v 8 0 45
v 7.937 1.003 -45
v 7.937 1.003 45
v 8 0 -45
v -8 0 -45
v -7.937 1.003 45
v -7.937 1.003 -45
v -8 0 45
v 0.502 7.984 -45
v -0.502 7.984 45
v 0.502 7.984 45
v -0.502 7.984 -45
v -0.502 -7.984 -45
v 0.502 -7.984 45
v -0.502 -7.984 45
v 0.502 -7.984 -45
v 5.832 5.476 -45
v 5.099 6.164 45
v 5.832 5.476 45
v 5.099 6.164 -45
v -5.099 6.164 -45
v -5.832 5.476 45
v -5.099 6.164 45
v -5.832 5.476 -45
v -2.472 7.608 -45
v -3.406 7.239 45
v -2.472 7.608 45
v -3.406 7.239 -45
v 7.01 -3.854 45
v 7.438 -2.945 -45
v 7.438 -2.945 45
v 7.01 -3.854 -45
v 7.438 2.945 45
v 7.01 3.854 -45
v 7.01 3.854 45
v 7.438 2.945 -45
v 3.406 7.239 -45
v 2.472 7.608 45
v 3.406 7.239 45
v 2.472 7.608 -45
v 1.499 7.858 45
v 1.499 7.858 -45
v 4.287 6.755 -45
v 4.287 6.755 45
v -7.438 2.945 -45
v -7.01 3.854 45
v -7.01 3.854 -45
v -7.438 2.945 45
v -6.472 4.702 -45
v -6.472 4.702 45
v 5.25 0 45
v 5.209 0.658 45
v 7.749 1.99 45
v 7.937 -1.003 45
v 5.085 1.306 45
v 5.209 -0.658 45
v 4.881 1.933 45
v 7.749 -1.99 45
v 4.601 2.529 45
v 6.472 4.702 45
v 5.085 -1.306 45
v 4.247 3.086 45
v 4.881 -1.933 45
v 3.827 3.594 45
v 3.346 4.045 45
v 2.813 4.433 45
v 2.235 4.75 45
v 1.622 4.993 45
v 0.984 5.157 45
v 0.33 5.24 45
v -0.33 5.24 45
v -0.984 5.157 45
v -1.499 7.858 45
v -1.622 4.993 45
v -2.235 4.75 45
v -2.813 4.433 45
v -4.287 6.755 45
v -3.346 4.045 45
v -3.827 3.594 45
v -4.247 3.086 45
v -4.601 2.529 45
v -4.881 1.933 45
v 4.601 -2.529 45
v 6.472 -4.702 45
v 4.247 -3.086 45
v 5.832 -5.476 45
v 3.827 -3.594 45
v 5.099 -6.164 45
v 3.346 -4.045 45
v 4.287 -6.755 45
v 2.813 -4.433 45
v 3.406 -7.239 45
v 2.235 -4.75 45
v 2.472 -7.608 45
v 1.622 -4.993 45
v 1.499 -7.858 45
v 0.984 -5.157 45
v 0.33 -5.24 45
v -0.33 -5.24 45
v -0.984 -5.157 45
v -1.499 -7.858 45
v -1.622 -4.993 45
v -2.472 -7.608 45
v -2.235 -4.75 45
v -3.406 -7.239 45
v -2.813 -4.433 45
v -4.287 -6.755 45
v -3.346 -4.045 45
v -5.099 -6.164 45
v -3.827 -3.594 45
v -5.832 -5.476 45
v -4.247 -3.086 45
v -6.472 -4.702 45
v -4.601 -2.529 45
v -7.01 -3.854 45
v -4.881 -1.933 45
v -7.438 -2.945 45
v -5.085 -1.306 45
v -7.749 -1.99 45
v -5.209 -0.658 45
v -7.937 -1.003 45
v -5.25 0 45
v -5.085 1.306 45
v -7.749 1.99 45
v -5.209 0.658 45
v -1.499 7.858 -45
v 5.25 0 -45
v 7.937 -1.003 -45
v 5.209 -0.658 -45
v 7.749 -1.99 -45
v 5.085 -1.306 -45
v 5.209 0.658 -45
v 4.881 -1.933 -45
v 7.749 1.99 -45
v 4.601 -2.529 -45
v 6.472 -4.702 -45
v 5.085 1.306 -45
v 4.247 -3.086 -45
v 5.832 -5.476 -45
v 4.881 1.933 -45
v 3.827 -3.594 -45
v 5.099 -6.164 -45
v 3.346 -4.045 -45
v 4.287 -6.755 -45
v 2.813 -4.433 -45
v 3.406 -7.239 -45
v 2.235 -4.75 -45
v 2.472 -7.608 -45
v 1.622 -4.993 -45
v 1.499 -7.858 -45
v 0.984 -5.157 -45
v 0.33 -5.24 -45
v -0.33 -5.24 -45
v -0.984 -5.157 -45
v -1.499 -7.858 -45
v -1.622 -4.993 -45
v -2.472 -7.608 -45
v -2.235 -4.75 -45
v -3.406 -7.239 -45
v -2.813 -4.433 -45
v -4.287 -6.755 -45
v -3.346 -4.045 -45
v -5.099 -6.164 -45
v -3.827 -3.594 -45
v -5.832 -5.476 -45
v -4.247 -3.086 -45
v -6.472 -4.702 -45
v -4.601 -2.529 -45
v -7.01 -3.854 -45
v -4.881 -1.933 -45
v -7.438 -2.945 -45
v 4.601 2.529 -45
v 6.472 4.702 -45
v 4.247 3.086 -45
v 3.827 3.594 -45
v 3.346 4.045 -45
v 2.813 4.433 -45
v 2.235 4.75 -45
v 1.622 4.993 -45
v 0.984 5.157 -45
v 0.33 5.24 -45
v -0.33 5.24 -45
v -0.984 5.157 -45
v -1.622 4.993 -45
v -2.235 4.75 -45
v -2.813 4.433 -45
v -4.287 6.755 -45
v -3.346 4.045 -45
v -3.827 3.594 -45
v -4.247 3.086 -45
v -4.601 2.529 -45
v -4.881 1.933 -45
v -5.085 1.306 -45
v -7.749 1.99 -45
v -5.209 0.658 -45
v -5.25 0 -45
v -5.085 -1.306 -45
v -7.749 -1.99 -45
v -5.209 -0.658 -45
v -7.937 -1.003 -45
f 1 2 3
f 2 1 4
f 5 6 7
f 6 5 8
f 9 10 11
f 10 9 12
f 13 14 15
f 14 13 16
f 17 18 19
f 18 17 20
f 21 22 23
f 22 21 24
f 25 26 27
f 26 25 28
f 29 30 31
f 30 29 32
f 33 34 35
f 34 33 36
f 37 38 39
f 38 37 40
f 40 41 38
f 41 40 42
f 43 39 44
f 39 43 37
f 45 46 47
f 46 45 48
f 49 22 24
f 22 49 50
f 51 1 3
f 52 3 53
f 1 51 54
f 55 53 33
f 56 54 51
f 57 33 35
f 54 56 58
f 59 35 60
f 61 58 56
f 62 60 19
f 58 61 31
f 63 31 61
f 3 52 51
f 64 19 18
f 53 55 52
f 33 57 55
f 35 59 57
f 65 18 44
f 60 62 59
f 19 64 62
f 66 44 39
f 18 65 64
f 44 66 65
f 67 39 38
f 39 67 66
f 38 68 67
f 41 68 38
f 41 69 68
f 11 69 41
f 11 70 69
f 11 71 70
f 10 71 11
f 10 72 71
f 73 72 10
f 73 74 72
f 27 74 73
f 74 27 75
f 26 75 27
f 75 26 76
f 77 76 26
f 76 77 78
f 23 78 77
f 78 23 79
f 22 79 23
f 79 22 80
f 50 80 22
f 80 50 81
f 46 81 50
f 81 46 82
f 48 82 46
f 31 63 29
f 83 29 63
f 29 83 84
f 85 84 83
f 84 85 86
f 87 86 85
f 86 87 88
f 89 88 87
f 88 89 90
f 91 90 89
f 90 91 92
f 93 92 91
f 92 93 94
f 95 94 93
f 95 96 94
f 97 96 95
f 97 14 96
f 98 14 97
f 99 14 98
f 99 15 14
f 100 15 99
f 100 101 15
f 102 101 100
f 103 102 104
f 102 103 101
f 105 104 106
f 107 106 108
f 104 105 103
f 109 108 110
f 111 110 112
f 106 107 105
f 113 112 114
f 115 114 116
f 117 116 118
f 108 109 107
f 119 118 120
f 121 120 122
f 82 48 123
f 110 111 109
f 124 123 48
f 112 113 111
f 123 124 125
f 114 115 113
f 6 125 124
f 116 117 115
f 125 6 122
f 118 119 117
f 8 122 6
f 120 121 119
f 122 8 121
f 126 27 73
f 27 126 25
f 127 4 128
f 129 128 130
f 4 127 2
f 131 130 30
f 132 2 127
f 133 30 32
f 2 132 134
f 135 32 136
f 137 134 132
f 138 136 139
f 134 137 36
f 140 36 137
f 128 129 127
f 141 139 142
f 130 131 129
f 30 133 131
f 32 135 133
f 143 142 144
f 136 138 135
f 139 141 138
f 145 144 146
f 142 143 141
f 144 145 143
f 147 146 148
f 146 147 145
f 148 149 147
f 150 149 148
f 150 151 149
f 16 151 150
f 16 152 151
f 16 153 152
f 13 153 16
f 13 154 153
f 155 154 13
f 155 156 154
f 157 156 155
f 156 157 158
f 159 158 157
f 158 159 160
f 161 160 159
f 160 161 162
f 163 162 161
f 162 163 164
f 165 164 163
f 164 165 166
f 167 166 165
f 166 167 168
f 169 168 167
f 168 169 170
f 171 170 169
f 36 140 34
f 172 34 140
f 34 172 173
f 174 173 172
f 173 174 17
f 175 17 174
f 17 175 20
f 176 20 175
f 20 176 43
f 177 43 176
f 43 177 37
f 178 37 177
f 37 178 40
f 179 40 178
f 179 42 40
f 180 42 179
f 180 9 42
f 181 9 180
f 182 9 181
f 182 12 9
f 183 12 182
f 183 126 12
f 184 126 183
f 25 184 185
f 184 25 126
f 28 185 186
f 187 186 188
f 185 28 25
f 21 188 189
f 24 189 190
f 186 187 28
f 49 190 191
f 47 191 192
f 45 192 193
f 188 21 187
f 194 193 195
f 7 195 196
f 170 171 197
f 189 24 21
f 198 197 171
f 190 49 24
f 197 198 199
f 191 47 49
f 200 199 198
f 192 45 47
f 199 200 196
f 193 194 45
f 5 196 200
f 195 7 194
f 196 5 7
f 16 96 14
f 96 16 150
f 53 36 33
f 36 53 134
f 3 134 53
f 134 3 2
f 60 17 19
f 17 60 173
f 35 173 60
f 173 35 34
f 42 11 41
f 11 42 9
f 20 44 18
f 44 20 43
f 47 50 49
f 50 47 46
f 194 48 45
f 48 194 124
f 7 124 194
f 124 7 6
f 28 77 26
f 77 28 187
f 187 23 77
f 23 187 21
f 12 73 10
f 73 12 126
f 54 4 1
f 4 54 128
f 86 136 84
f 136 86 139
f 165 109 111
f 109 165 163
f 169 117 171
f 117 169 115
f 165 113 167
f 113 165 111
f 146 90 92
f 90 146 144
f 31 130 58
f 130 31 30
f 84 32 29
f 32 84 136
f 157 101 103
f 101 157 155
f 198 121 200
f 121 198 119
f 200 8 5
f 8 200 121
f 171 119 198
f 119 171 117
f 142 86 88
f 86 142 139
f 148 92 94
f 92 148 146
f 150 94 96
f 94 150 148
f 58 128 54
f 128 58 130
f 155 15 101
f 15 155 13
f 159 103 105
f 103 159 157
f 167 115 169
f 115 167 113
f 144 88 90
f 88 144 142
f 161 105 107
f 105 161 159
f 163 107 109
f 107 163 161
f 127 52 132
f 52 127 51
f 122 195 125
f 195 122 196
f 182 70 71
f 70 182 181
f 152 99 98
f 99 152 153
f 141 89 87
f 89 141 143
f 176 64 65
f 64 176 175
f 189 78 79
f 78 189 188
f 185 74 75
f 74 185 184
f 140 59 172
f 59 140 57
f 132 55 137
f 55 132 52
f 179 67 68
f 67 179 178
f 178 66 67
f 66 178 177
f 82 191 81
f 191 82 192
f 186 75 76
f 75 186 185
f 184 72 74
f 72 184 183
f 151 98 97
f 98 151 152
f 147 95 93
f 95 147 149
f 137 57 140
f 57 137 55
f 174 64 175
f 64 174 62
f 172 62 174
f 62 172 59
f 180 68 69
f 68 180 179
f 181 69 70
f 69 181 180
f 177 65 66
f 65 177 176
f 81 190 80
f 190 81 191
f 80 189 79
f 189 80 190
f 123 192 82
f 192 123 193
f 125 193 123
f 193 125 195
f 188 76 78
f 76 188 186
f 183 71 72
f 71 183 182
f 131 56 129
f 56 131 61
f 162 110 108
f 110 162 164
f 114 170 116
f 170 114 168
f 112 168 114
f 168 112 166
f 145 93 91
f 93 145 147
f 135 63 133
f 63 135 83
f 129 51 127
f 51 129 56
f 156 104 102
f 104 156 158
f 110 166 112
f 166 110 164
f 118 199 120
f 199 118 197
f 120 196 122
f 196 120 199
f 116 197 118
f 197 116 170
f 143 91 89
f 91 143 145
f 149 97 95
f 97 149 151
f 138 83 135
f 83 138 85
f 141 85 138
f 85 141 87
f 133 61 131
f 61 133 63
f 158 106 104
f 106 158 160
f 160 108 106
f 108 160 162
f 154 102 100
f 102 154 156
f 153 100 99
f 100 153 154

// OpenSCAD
$fn = 50;


difference() {
	union() {
		translate(v = [0, 0, -45.0000000000]) {
			cylinder(h = 90, r = 8.0000000000);
		}
	}
	union() {
		translate(v = [0, 0, -100.0000000000]) {
			cylinder(h = 200, r = 5.2500000000);
		}
	}
}
